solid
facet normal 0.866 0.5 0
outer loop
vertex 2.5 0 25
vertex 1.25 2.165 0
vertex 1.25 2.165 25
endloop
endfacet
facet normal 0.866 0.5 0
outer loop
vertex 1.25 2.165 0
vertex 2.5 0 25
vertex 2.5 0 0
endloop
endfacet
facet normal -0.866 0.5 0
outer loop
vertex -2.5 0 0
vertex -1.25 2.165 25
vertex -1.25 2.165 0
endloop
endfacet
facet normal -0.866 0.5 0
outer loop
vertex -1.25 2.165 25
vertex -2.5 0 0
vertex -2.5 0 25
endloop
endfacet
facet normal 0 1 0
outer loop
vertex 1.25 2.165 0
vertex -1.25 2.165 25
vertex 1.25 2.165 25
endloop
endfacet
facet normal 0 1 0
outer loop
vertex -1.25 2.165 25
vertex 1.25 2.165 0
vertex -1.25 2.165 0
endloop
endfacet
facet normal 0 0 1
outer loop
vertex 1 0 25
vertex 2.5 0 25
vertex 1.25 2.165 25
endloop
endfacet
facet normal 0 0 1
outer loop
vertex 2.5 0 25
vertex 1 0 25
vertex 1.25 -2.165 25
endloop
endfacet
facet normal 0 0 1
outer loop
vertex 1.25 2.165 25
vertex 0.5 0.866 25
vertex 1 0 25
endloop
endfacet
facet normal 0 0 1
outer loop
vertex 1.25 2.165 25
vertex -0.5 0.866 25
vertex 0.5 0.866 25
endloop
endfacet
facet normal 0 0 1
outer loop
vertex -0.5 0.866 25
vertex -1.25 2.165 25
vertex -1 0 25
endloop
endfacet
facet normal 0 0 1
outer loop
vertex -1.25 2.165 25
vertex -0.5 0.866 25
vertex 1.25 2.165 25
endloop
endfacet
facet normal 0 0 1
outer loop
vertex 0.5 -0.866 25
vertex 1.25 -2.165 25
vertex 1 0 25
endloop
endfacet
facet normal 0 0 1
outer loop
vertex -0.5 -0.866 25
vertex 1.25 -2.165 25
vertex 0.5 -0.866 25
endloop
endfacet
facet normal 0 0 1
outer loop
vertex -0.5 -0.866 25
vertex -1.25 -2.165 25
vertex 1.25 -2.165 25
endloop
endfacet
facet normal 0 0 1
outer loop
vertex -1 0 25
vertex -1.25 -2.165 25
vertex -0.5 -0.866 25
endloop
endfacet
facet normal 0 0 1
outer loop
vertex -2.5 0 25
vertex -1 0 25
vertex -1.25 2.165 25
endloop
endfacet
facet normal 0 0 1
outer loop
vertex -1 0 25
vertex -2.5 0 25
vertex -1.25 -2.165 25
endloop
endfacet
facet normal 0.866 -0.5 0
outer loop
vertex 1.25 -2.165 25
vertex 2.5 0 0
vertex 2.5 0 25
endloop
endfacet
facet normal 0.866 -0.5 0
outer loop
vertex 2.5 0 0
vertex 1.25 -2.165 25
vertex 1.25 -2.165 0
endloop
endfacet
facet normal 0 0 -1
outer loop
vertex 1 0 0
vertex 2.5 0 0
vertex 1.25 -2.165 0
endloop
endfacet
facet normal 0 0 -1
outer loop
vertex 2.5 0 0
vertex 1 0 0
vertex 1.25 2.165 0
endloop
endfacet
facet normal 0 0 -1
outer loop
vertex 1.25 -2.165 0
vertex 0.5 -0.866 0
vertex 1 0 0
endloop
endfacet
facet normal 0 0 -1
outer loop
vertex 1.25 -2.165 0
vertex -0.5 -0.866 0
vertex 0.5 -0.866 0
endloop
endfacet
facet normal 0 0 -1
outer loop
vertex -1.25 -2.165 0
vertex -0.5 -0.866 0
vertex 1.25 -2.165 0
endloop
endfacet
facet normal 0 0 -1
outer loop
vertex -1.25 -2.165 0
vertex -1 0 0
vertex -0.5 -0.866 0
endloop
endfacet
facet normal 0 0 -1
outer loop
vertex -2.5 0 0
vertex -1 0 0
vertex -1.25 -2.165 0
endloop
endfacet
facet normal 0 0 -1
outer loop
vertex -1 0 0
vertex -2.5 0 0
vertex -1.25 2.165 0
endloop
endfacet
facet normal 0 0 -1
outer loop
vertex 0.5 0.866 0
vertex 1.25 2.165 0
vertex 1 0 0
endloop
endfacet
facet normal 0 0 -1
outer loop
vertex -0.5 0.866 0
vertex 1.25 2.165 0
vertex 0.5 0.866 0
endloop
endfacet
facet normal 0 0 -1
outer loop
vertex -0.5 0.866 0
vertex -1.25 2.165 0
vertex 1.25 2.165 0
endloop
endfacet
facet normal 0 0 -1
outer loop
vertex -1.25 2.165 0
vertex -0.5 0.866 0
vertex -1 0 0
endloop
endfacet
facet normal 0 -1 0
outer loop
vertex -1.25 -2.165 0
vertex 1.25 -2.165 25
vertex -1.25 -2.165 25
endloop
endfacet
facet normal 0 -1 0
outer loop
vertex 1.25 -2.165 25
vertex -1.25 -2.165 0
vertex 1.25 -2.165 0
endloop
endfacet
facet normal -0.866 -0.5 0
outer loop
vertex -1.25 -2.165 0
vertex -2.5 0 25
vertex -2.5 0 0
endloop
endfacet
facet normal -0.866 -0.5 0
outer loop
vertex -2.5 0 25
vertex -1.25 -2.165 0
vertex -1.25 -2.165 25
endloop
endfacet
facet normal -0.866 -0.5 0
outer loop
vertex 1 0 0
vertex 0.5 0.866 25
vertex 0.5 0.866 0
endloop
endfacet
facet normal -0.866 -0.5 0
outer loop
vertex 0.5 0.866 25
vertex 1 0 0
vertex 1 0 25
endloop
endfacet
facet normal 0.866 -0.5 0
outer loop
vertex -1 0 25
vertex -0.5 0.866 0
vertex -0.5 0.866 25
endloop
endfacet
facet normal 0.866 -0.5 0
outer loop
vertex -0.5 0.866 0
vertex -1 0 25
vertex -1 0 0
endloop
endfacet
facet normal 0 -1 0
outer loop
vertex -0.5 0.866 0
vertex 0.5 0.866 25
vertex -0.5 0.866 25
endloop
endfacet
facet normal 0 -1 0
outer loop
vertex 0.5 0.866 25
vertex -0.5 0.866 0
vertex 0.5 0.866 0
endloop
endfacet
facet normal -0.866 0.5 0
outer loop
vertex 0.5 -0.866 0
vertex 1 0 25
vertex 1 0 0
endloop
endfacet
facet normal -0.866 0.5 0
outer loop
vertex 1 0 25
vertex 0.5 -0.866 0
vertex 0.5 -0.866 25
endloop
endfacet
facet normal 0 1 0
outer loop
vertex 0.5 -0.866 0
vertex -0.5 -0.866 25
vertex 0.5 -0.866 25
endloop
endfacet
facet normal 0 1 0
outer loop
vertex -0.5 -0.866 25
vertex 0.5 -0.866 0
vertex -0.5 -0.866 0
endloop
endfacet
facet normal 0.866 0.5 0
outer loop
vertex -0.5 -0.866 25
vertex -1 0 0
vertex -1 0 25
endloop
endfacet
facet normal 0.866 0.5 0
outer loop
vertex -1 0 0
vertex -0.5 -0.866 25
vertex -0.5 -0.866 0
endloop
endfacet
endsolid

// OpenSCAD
height = 25;
outer_diameter = 5;
inner_diameter = 2;

$fn = 6;

difference() {
    cylinder(d = outer_diameter, h = height);
    translate([0, 0, -1])
        cylinder(d = inner_diameter, h = height + 2);
}
